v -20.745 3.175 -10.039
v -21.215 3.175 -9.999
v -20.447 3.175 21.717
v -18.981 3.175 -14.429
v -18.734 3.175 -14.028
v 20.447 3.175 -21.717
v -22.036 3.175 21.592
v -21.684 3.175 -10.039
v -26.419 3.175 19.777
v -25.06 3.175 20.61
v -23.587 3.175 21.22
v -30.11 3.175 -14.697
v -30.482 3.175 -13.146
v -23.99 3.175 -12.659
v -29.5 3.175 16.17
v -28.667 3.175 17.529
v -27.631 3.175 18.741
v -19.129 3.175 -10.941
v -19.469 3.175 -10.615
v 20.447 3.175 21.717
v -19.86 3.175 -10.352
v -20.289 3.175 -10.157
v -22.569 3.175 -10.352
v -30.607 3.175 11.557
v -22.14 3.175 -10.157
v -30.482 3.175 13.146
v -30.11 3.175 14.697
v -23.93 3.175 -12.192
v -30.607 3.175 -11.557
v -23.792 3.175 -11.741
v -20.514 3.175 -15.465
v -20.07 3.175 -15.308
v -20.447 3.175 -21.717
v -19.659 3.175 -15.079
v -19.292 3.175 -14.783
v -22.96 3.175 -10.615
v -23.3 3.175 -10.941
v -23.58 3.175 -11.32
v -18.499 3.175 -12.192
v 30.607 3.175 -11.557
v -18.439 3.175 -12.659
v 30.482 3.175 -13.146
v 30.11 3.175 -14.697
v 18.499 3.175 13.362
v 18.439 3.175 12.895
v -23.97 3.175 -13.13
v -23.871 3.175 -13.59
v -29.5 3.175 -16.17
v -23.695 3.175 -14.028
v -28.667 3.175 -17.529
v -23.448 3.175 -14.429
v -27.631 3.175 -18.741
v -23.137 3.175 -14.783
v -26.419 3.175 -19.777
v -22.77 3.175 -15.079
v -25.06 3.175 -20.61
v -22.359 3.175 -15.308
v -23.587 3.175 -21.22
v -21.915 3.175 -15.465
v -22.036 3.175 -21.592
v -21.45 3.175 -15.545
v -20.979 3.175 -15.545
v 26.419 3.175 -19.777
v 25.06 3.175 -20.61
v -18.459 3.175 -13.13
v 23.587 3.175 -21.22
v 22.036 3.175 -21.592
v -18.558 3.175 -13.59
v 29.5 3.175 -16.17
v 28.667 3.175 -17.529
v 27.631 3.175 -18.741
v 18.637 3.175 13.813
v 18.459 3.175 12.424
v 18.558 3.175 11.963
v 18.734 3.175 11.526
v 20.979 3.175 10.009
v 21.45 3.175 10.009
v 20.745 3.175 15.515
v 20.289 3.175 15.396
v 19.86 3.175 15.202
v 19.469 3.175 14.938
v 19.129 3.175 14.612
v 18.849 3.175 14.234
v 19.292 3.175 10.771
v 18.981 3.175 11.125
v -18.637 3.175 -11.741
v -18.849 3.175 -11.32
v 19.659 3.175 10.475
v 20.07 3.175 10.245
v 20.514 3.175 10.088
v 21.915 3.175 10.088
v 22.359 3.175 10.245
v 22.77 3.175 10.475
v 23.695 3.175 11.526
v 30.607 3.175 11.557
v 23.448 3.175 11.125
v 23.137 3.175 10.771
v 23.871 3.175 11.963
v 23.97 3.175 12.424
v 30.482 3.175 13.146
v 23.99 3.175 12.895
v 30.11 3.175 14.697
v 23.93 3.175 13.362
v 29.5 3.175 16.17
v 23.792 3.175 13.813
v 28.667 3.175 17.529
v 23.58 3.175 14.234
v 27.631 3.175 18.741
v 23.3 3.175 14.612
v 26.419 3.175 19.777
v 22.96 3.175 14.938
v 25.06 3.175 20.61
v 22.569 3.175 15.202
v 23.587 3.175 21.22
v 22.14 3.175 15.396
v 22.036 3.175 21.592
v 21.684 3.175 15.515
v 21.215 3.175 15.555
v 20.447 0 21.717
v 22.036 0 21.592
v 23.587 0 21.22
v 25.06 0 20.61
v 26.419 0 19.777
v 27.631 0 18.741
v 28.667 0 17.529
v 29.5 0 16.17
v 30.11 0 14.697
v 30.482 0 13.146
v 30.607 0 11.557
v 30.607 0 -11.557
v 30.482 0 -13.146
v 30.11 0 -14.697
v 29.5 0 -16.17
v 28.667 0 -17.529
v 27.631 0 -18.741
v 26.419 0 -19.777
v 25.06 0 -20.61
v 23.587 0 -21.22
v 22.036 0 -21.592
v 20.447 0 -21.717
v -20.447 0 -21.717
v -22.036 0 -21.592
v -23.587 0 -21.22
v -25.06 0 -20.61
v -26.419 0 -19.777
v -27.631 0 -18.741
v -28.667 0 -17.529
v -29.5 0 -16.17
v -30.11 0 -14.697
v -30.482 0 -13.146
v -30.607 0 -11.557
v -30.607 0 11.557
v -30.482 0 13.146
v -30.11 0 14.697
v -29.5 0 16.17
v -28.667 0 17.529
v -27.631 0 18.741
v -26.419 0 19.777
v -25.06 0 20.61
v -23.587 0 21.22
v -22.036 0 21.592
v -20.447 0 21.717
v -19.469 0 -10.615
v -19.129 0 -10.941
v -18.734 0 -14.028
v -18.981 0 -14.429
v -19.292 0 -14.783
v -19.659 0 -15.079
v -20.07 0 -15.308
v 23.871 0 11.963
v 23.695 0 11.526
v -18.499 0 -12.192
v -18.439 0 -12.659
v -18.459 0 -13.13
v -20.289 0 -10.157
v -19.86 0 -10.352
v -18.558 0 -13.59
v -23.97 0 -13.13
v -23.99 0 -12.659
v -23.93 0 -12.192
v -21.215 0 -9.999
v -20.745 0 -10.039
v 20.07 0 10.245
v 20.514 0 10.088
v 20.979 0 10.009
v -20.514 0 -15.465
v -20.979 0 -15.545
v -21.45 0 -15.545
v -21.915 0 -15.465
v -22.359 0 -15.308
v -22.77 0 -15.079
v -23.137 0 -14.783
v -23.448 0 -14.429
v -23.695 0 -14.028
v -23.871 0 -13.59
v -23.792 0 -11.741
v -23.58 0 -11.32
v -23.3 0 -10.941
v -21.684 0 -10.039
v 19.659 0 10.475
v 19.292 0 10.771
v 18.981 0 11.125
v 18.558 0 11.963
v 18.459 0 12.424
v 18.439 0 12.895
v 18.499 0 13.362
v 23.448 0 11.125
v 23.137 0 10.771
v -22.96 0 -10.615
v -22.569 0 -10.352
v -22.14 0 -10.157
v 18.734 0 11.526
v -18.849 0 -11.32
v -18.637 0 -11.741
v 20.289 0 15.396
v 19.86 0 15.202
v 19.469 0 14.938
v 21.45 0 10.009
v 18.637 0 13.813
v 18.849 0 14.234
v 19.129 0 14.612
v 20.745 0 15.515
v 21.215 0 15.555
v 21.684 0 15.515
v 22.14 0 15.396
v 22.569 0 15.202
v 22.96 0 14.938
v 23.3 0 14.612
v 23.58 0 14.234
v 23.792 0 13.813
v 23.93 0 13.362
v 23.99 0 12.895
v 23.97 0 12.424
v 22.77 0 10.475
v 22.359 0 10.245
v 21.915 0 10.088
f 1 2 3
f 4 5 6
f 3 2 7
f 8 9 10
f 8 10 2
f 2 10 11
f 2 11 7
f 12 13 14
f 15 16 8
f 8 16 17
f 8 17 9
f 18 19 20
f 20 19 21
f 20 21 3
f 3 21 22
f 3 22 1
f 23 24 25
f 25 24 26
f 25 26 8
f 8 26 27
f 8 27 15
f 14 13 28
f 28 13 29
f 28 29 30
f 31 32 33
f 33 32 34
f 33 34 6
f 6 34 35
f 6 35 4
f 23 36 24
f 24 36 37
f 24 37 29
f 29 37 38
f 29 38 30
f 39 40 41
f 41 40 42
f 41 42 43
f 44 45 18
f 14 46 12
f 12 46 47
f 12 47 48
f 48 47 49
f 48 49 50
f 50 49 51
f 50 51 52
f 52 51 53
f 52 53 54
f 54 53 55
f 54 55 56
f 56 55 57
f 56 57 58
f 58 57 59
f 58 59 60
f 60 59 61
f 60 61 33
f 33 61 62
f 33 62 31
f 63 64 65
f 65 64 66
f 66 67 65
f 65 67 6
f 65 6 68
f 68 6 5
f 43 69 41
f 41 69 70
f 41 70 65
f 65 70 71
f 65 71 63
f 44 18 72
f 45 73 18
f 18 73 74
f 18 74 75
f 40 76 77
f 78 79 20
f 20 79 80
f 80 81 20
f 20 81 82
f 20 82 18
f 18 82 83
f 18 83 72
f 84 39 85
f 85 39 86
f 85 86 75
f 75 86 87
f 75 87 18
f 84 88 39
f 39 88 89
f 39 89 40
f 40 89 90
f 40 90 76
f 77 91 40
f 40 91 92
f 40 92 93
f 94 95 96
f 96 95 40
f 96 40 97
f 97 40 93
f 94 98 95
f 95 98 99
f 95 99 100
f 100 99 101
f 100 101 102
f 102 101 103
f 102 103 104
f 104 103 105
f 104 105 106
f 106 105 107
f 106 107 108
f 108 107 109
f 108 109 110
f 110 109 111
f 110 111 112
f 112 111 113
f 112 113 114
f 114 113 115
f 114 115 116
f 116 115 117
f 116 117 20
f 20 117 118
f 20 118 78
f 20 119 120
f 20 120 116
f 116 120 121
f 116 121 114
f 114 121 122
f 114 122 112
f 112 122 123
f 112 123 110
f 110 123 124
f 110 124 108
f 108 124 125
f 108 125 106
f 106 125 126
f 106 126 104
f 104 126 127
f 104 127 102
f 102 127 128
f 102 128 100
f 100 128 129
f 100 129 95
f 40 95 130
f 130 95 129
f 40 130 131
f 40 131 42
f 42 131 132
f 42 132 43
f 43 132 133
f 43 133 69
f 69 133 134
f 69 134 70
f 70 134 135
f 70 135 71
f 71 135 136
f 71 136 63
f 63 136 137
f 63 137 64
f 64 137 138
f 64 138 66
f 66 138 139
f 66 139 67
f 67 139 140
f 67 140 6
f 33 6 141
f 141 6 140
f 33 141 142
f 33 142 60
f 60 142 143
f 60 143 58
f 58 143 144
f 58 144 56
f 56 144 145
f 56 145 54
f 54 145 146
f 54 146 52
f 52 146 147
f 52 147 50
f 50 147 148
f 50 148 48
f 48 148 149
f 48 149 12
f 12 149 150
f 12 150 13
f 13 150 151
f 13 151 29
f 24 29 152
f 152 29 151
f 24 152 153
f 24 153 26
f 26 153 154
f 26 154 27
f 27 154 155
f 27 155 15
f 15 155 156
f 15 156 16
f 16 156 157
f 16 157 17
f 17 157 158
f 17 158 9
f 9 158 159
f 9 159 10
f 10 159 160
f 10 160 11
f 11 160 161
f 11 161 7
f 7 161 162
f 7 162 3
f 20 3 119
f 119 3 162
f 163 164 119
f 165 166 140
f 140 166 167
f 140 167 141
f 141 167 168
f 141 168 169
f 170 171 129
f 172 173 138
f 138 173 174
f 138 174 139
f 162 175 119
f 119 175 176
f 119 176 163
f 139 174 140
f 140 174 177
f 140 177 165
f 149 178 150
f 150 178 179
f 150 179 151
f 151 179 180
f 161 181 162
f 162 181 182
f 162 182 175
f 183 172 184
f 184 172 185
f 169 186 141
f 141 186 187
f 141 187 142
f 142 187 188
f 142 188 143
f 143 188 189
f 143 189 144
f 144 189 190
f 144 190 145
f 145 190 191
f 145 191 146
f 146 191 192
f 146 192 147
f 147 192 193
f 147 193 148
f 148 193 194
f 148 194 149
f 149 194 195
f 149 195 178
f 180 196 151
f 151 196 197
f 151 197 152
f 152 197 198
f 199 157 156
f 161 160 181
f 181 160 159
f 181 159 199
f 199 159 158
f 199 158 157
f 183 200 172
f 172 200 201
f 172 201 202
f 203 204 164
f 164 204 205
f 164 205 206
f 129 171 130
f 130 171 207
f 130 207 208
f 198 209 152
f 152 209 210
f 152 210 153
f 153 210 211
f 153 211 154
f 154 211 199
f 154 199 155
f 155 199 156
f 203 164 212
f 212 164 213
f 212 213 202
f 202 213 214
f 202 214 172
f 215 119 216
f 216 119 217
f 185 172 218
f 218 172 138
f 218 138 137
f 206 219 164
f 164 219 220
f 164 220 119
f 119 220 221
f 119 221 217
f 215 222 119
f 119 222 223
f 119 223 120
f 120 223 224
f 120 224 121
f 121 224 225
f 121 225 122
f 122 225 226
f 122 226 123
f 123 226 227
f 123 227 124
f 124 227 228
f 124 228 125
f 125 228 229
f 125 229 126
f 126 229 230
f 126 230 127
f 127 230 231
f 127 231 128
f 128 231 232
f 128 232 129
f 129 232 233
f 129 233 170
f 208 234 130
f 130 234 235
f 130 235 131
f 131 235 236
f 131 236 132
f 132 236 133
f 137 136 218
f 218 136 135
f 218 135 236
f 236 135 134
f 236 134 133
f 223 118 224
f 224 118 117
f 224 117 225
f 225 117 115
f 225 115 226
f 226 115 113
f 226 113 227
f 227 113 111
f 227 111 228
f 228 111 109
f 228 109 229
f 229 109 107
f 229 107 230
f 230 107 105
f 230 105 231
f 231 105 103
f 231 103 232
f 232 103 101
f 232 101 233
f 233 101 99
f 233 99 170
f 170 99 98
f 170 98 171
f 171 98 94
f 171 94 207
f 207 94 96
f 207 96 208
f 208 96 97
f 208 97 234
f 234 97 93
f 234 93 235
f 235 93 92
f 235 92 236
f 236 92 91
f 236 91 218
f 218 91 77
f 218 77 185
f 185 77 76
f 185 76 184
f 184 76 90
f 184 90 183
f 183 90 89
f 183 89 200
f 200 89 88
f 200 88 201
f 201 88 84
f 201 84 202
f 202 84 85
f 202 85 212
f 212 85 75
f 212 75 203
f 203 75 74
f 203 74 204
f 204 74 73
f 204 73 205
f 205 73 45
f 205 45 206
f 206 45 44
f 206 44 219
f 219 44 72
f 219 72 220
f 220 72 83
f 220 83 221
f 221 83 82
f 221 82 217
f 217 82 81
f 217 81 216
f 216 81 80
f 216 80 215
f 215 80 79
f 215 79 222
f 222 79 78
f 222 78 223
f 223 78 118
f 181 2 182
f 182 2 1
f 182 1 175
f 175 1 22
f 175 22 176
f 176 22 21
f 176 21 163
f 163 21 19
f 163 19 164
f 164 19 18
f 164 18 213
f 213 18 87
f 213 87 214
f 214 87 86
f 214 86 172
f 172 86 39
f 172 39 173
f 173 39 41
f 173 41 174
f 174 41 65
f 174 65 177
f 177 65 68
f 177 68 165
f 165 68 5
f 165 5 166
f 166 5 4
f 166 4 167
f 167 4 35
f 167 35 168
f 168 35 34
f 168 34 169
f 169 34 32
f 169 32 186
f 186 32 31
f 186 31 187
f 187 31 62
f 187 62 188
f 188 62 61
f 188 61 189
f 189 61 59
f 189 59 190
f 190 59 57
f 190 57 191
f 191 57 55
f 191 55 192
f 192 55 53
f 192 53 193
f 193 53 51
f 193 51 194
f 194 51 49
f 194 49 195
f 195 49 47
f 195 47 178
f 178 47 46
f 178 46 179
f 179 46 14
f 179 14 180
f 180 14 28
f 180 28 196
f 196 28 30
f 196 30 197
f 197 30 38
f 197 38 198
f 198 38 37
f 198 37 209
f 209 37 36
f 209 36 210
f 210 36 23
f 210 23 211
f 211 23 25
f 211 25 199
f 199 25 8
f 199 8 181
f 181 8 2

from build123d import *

# Parameters (mm, degrees)
BOSS_EXTRUDE1_DEPTH             = 3.175
F_7_32_0_21875_DIAMETER_HOLE1_D = 5.55625


with BuildPart() as part:
    # Sketch1 → Boss-Extrude1 (new body)
    with BuildSketch(Plane(origin=(0, 0, 0), x_dir=(1, 0, 0), z_dir=(0, 1, 0))):
        with BuildLine():
            Line((-20.447, -21.717), (20.447, -21.717))
            ThreePointArc((20.447, -21.717), (27.631204897, -18.741204897), (30.607, -11.557))
            Line((30.607, -11.557), (30.607, 11.557))
            ThreePointArc((30.607, 11.557), (27.631204897, 18.741204897), (20.447, 21.717))
            Line((20.447, 21.717), (-20.447, 21.717))
            ThreePointArc((-20.447, 21.717), (-27.631204897, 18.741204897), (-30.607, 11.557))
            Line((-30.607, 11.557), (-30.607, -11.557))
            ThreePointArc((-30.607, -11.557), (-27.631204897, -18.741204897), (-20.447, -21.717))
        make_face()
    extrude(amount=BOSS_EXTRUDE1_DEPTH)

    # 7/32 (0.21875) Diameter Hole1 (through all)
    with Locations(Plane(origin=(0, 3.175, 0), x_dir=(1, 0, 0), z_dir=(0, 1, 0))):
        with Locations((-21.214511478, 12.776921686), (21.214511478, -12.776921686)):
            Hole(F_7_32_0_21875_DIAMETER_HOLE1_D / 2)


solid = part.part
